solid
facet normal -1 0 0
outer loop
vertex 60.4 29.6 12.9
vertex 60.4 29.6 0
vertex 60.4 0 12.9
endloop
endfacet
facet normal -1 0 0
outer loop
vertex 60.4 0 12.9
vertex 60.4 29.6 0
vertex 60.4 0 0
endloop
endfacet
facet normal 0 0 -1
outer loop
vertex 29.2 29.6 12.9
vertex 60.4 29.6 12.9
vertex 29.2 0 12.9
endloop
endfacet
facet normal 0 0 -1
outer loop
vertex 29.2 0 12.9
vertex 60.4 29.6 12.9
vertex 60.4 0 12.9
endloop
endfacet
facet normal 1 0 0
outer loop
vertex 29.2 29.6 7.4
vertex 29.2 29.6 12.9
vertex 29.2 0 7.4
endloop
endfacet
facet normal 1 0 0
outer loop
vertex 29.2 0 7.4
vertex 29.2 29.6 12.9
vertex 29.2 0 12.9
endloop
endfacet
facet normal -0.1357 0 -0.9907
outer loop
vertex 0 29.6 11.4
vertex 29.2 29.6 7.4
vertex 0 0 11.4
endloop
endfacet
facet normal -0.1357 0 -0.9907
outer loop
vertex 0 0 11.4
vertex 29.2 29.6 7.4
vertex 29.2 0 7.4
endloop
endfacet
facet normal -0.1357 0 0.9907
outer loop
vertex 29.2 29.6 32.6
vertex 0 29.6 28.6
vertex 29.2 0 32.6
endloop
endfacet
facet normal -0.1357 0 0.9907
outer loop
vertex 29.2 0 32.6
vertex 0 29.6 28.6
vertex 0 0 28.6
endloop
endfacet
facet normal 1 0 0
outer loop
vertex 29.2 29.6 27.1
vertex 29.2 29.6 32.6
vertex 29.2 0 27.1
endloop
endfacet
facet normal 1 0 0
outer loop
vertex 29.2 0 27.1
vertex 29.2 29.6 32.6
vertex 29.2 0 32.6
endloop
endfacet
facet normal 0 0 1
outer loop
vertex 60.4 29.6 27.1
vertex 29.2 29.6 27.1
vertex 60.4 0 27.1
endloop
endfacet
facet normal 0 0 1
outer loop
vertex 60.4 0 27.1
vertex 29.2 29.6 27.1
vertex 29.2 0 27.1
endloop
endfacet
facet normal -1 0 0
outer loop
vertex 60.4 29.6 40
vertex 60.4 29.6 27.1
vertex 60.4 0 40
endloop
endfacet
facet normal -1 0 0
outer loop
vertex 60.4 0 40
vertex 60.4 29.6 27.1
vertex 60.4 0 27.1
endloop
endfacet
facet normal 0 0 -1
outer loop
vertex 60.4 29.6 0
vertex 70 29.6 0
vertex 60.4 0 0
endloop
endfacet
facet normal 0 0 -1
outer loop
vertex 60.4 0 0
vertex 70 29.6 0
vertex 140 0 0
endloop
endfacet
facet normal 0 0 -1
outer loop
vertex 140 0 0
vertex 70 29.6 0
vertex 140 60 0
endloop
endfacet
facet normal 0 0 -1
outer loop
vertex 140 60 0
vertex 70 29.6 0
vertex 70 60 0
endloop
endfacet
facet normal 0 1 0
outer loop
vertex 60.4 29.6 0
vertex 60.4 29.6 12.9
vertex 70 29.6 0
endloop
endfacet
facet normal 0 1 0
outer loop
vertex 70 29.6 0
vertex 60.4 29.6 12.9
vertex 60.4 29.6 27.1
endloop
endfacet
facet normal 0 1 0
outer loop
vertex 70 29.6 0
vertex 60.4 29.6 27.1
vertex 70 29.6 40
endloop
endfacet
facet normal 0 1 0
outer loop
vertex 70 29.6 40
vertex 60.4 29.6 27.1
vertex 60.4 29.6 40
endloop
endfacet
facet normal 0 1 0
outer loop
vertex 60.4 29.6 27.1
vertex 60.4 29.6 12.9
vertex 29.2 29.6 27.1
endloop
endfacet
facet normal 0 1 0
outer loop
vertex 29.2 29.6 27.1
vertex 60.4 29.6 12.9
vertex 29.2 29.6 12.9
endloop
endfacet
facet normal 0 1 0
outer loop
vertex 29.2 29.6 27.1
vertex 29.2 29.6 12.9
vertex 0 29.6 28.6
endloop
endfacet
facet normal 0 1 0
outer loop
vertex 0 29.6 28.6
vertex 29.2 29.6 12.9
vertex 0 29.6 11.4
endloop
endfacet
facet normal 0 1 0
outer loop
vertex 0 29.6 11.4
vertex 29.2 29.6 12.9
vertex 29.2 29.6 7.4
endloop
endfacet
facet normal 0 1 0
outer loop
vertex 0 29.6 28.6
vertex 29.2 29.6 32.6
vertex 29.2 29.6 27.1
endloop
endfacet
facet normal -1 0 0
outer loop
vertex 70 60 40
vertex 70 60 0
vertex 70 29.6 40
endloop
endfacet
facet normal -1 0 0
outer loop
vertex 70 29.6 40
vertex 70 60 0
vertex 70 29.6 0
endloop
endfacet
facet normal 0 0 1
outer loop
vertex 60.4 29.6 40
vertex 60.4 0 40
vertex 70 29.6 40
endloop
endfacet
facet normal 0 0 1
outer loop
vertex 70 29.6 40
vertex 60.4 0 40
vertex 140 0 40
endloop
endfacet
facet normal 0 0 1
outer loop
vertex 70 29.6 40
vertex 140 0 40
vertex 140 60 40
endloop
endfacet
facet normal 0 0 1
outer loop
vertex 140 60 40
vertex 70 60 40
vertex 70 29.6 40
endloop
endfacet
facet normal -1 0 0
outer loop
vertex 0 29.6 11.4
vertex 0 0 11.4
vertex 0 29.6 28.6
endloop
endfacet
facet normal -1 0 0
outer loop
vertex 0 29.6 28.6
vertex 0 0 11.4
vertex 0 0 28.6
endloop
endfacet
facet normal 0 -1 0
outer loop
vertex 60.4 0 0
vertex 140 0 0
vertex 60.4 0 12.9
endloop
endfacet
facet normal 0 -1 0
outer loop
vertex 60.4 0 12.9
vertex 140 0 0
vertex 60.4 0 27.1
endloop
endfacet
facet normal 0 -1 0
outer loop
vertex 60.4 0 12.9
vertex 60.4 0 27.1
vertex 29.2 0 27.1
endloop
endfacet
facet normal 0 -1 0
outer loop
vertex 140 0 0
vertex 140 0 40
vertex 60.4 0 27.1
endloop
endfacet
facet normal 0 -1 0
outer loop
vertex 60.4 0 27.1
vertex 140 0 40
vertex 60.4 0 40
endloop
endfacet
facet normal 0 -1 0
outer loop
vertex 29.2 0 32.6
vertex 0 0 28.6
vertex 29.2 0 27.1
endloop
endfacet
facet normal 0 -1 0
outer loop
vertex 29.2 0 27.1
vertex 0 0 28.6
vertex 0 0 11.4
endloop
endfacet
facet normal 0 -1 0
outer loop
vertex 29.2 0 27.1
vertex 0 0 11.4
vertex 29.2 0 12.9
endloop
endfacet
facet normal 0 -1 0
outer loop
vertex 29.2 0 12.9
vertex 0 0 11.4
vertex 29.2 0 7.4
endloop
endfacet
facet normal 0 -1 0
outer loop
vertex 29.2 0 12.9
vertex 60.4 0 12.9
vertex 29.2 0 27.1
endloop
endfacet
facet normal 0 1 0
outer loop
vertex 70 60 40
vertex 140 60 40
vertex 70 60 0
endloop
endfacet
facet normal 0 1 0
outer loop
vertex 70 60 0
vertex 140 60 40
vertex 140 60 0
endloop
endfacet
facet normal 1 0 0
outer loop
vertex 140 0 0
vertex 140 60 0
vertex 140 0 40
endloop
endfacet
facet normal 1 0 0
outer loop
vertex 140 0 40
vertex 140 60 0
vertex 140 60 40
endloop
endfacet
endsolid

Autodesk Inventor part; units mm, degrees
ref_plane "YZ Plane" through (0, 0, 0) normal (1, 0, 0) x (0, 1, 0)
ref_plane "XZ Plane" through (0, 0, 0) normal (0, 1, 0) x (-1, 0, 0)
ref_plane "XY Plane" through (0, 0, 0) normal (0, 0, 1) x (1, 0, 0)
sketch "Boceto1" plane through (0, 0, 0) normal (0, 0, 1) x (1, 0, 0)
  line L0 (0, 0) -> (140, 0)
  line L1 (140, 0) -> (140, 60)
  line L2 (140, 60) -> (0, 60)
  line L3 (0, 60) -> (0, 0)
  dimension "d0" = 140
  dimension "d1" = 60
extrude "Extrusión1" add sketch "Boceto1" along normal blind 40
sketch "Boceto2" plane through (0, 60, 0) normal (0, 1, 0) x (1, 0, 0)
  line L0 (140, -40) -> (0, -40) projected
  line L1 (0, 0) -> (0, -40)
  line L2 (140, 0) -> (0, 0) projected
  line L3 (0, 0) -> (70, 0)
  line L4 (0, 0) -> (70, 0) construction
  line L5 (70, 0) -> (70, -40)
  line L6 (0, -40) -> (70, -40)
  point P0 (70, 0)
  dimension "d4" = 70
  dimension "d5" = 0
extrude "Extrusión2" cut sketch "Boceto2" against normal blind 30.4
sketch "Boceto3" plane through (0, 0, 0) normal (0, -1, 0) x (1, 0, 0)
  line L0 (0, 0) -> (140, 0) projected
  line L1 (0, 0) -> (0, 11.4)
  line L2 (0, 0) -> (0, 40) projected
  line L3 (0, 11.4) -> (0, 28.6) construction
  line L4 (0, 28.6) -> (0, 40)
  line L5 (0, 0) -> (29.2, 0)
  line L6 (29.2, 0) -> (29.2, 7.4) construction
  line L7 (0, 11.4) -> (29.2, 7.4)
  line L8 (29.2, 0) -> (29.2, 7.4)
  line L9 (29.2, 7.4) -> (29.2, 12.9)
  line L10 (29.2, 12.9) -> (60.4, 12.9)
  line L11 (29.2, 0) -> (60.4, 0)
  line L12 (60.4, 0) -> (60.4, 12.9)
  line L13 (0, 40) -> (140, 40) projected
  line L14 (0, 40) -> (60.4, 40)
  line L15 (60.4, 40) -> (60.4, 27.1)
  line L16 (60.4, 27.1) -> (29.2, 27.1)
  line L17 (60.4, 27.1) -> (91.6, 27.1) construction
  line L18 (29.2, 27.1) -> (29.2, 32.6)
  line L19 (29.2, 32.6) -> (0, 28.6)
  dimension "d8" = 11.4
  dimension "d9" = 17.2
  dimension "d10" = 29.2
  dimension "d11" = 7.4
  dimension "d12" = 5.5
  dimension "d13" = 31.2
  dimension "d14" = 12.9
  dimension "d15" = 60.4
  dimension "d16" = 31.2
  dimension "d17" = 180
  dimension "d18" = 5.5
extrude "Extrusión3" cut sketch "Boceto3" against normal blind 30
equation "\"d4\" = Largo_mitad"
equation "\"d12\" = Prof_corte"
equation "\"d18\" = Prof_corte"
equation "\"Largo_mitad\" = 70"
equation "\"Prof_corte\" = 5.5"
equation "\"Separacion_1\" = 11"
equation "\"Separacion_2\" = 7"
equation "\"Separacion_3\" = 12.5"
equation "\"Angulo_0\" = 0"
equation "\"Angulo_180\" = 180deg"
properties part number "Tenon_Macho_Parametrizado"
